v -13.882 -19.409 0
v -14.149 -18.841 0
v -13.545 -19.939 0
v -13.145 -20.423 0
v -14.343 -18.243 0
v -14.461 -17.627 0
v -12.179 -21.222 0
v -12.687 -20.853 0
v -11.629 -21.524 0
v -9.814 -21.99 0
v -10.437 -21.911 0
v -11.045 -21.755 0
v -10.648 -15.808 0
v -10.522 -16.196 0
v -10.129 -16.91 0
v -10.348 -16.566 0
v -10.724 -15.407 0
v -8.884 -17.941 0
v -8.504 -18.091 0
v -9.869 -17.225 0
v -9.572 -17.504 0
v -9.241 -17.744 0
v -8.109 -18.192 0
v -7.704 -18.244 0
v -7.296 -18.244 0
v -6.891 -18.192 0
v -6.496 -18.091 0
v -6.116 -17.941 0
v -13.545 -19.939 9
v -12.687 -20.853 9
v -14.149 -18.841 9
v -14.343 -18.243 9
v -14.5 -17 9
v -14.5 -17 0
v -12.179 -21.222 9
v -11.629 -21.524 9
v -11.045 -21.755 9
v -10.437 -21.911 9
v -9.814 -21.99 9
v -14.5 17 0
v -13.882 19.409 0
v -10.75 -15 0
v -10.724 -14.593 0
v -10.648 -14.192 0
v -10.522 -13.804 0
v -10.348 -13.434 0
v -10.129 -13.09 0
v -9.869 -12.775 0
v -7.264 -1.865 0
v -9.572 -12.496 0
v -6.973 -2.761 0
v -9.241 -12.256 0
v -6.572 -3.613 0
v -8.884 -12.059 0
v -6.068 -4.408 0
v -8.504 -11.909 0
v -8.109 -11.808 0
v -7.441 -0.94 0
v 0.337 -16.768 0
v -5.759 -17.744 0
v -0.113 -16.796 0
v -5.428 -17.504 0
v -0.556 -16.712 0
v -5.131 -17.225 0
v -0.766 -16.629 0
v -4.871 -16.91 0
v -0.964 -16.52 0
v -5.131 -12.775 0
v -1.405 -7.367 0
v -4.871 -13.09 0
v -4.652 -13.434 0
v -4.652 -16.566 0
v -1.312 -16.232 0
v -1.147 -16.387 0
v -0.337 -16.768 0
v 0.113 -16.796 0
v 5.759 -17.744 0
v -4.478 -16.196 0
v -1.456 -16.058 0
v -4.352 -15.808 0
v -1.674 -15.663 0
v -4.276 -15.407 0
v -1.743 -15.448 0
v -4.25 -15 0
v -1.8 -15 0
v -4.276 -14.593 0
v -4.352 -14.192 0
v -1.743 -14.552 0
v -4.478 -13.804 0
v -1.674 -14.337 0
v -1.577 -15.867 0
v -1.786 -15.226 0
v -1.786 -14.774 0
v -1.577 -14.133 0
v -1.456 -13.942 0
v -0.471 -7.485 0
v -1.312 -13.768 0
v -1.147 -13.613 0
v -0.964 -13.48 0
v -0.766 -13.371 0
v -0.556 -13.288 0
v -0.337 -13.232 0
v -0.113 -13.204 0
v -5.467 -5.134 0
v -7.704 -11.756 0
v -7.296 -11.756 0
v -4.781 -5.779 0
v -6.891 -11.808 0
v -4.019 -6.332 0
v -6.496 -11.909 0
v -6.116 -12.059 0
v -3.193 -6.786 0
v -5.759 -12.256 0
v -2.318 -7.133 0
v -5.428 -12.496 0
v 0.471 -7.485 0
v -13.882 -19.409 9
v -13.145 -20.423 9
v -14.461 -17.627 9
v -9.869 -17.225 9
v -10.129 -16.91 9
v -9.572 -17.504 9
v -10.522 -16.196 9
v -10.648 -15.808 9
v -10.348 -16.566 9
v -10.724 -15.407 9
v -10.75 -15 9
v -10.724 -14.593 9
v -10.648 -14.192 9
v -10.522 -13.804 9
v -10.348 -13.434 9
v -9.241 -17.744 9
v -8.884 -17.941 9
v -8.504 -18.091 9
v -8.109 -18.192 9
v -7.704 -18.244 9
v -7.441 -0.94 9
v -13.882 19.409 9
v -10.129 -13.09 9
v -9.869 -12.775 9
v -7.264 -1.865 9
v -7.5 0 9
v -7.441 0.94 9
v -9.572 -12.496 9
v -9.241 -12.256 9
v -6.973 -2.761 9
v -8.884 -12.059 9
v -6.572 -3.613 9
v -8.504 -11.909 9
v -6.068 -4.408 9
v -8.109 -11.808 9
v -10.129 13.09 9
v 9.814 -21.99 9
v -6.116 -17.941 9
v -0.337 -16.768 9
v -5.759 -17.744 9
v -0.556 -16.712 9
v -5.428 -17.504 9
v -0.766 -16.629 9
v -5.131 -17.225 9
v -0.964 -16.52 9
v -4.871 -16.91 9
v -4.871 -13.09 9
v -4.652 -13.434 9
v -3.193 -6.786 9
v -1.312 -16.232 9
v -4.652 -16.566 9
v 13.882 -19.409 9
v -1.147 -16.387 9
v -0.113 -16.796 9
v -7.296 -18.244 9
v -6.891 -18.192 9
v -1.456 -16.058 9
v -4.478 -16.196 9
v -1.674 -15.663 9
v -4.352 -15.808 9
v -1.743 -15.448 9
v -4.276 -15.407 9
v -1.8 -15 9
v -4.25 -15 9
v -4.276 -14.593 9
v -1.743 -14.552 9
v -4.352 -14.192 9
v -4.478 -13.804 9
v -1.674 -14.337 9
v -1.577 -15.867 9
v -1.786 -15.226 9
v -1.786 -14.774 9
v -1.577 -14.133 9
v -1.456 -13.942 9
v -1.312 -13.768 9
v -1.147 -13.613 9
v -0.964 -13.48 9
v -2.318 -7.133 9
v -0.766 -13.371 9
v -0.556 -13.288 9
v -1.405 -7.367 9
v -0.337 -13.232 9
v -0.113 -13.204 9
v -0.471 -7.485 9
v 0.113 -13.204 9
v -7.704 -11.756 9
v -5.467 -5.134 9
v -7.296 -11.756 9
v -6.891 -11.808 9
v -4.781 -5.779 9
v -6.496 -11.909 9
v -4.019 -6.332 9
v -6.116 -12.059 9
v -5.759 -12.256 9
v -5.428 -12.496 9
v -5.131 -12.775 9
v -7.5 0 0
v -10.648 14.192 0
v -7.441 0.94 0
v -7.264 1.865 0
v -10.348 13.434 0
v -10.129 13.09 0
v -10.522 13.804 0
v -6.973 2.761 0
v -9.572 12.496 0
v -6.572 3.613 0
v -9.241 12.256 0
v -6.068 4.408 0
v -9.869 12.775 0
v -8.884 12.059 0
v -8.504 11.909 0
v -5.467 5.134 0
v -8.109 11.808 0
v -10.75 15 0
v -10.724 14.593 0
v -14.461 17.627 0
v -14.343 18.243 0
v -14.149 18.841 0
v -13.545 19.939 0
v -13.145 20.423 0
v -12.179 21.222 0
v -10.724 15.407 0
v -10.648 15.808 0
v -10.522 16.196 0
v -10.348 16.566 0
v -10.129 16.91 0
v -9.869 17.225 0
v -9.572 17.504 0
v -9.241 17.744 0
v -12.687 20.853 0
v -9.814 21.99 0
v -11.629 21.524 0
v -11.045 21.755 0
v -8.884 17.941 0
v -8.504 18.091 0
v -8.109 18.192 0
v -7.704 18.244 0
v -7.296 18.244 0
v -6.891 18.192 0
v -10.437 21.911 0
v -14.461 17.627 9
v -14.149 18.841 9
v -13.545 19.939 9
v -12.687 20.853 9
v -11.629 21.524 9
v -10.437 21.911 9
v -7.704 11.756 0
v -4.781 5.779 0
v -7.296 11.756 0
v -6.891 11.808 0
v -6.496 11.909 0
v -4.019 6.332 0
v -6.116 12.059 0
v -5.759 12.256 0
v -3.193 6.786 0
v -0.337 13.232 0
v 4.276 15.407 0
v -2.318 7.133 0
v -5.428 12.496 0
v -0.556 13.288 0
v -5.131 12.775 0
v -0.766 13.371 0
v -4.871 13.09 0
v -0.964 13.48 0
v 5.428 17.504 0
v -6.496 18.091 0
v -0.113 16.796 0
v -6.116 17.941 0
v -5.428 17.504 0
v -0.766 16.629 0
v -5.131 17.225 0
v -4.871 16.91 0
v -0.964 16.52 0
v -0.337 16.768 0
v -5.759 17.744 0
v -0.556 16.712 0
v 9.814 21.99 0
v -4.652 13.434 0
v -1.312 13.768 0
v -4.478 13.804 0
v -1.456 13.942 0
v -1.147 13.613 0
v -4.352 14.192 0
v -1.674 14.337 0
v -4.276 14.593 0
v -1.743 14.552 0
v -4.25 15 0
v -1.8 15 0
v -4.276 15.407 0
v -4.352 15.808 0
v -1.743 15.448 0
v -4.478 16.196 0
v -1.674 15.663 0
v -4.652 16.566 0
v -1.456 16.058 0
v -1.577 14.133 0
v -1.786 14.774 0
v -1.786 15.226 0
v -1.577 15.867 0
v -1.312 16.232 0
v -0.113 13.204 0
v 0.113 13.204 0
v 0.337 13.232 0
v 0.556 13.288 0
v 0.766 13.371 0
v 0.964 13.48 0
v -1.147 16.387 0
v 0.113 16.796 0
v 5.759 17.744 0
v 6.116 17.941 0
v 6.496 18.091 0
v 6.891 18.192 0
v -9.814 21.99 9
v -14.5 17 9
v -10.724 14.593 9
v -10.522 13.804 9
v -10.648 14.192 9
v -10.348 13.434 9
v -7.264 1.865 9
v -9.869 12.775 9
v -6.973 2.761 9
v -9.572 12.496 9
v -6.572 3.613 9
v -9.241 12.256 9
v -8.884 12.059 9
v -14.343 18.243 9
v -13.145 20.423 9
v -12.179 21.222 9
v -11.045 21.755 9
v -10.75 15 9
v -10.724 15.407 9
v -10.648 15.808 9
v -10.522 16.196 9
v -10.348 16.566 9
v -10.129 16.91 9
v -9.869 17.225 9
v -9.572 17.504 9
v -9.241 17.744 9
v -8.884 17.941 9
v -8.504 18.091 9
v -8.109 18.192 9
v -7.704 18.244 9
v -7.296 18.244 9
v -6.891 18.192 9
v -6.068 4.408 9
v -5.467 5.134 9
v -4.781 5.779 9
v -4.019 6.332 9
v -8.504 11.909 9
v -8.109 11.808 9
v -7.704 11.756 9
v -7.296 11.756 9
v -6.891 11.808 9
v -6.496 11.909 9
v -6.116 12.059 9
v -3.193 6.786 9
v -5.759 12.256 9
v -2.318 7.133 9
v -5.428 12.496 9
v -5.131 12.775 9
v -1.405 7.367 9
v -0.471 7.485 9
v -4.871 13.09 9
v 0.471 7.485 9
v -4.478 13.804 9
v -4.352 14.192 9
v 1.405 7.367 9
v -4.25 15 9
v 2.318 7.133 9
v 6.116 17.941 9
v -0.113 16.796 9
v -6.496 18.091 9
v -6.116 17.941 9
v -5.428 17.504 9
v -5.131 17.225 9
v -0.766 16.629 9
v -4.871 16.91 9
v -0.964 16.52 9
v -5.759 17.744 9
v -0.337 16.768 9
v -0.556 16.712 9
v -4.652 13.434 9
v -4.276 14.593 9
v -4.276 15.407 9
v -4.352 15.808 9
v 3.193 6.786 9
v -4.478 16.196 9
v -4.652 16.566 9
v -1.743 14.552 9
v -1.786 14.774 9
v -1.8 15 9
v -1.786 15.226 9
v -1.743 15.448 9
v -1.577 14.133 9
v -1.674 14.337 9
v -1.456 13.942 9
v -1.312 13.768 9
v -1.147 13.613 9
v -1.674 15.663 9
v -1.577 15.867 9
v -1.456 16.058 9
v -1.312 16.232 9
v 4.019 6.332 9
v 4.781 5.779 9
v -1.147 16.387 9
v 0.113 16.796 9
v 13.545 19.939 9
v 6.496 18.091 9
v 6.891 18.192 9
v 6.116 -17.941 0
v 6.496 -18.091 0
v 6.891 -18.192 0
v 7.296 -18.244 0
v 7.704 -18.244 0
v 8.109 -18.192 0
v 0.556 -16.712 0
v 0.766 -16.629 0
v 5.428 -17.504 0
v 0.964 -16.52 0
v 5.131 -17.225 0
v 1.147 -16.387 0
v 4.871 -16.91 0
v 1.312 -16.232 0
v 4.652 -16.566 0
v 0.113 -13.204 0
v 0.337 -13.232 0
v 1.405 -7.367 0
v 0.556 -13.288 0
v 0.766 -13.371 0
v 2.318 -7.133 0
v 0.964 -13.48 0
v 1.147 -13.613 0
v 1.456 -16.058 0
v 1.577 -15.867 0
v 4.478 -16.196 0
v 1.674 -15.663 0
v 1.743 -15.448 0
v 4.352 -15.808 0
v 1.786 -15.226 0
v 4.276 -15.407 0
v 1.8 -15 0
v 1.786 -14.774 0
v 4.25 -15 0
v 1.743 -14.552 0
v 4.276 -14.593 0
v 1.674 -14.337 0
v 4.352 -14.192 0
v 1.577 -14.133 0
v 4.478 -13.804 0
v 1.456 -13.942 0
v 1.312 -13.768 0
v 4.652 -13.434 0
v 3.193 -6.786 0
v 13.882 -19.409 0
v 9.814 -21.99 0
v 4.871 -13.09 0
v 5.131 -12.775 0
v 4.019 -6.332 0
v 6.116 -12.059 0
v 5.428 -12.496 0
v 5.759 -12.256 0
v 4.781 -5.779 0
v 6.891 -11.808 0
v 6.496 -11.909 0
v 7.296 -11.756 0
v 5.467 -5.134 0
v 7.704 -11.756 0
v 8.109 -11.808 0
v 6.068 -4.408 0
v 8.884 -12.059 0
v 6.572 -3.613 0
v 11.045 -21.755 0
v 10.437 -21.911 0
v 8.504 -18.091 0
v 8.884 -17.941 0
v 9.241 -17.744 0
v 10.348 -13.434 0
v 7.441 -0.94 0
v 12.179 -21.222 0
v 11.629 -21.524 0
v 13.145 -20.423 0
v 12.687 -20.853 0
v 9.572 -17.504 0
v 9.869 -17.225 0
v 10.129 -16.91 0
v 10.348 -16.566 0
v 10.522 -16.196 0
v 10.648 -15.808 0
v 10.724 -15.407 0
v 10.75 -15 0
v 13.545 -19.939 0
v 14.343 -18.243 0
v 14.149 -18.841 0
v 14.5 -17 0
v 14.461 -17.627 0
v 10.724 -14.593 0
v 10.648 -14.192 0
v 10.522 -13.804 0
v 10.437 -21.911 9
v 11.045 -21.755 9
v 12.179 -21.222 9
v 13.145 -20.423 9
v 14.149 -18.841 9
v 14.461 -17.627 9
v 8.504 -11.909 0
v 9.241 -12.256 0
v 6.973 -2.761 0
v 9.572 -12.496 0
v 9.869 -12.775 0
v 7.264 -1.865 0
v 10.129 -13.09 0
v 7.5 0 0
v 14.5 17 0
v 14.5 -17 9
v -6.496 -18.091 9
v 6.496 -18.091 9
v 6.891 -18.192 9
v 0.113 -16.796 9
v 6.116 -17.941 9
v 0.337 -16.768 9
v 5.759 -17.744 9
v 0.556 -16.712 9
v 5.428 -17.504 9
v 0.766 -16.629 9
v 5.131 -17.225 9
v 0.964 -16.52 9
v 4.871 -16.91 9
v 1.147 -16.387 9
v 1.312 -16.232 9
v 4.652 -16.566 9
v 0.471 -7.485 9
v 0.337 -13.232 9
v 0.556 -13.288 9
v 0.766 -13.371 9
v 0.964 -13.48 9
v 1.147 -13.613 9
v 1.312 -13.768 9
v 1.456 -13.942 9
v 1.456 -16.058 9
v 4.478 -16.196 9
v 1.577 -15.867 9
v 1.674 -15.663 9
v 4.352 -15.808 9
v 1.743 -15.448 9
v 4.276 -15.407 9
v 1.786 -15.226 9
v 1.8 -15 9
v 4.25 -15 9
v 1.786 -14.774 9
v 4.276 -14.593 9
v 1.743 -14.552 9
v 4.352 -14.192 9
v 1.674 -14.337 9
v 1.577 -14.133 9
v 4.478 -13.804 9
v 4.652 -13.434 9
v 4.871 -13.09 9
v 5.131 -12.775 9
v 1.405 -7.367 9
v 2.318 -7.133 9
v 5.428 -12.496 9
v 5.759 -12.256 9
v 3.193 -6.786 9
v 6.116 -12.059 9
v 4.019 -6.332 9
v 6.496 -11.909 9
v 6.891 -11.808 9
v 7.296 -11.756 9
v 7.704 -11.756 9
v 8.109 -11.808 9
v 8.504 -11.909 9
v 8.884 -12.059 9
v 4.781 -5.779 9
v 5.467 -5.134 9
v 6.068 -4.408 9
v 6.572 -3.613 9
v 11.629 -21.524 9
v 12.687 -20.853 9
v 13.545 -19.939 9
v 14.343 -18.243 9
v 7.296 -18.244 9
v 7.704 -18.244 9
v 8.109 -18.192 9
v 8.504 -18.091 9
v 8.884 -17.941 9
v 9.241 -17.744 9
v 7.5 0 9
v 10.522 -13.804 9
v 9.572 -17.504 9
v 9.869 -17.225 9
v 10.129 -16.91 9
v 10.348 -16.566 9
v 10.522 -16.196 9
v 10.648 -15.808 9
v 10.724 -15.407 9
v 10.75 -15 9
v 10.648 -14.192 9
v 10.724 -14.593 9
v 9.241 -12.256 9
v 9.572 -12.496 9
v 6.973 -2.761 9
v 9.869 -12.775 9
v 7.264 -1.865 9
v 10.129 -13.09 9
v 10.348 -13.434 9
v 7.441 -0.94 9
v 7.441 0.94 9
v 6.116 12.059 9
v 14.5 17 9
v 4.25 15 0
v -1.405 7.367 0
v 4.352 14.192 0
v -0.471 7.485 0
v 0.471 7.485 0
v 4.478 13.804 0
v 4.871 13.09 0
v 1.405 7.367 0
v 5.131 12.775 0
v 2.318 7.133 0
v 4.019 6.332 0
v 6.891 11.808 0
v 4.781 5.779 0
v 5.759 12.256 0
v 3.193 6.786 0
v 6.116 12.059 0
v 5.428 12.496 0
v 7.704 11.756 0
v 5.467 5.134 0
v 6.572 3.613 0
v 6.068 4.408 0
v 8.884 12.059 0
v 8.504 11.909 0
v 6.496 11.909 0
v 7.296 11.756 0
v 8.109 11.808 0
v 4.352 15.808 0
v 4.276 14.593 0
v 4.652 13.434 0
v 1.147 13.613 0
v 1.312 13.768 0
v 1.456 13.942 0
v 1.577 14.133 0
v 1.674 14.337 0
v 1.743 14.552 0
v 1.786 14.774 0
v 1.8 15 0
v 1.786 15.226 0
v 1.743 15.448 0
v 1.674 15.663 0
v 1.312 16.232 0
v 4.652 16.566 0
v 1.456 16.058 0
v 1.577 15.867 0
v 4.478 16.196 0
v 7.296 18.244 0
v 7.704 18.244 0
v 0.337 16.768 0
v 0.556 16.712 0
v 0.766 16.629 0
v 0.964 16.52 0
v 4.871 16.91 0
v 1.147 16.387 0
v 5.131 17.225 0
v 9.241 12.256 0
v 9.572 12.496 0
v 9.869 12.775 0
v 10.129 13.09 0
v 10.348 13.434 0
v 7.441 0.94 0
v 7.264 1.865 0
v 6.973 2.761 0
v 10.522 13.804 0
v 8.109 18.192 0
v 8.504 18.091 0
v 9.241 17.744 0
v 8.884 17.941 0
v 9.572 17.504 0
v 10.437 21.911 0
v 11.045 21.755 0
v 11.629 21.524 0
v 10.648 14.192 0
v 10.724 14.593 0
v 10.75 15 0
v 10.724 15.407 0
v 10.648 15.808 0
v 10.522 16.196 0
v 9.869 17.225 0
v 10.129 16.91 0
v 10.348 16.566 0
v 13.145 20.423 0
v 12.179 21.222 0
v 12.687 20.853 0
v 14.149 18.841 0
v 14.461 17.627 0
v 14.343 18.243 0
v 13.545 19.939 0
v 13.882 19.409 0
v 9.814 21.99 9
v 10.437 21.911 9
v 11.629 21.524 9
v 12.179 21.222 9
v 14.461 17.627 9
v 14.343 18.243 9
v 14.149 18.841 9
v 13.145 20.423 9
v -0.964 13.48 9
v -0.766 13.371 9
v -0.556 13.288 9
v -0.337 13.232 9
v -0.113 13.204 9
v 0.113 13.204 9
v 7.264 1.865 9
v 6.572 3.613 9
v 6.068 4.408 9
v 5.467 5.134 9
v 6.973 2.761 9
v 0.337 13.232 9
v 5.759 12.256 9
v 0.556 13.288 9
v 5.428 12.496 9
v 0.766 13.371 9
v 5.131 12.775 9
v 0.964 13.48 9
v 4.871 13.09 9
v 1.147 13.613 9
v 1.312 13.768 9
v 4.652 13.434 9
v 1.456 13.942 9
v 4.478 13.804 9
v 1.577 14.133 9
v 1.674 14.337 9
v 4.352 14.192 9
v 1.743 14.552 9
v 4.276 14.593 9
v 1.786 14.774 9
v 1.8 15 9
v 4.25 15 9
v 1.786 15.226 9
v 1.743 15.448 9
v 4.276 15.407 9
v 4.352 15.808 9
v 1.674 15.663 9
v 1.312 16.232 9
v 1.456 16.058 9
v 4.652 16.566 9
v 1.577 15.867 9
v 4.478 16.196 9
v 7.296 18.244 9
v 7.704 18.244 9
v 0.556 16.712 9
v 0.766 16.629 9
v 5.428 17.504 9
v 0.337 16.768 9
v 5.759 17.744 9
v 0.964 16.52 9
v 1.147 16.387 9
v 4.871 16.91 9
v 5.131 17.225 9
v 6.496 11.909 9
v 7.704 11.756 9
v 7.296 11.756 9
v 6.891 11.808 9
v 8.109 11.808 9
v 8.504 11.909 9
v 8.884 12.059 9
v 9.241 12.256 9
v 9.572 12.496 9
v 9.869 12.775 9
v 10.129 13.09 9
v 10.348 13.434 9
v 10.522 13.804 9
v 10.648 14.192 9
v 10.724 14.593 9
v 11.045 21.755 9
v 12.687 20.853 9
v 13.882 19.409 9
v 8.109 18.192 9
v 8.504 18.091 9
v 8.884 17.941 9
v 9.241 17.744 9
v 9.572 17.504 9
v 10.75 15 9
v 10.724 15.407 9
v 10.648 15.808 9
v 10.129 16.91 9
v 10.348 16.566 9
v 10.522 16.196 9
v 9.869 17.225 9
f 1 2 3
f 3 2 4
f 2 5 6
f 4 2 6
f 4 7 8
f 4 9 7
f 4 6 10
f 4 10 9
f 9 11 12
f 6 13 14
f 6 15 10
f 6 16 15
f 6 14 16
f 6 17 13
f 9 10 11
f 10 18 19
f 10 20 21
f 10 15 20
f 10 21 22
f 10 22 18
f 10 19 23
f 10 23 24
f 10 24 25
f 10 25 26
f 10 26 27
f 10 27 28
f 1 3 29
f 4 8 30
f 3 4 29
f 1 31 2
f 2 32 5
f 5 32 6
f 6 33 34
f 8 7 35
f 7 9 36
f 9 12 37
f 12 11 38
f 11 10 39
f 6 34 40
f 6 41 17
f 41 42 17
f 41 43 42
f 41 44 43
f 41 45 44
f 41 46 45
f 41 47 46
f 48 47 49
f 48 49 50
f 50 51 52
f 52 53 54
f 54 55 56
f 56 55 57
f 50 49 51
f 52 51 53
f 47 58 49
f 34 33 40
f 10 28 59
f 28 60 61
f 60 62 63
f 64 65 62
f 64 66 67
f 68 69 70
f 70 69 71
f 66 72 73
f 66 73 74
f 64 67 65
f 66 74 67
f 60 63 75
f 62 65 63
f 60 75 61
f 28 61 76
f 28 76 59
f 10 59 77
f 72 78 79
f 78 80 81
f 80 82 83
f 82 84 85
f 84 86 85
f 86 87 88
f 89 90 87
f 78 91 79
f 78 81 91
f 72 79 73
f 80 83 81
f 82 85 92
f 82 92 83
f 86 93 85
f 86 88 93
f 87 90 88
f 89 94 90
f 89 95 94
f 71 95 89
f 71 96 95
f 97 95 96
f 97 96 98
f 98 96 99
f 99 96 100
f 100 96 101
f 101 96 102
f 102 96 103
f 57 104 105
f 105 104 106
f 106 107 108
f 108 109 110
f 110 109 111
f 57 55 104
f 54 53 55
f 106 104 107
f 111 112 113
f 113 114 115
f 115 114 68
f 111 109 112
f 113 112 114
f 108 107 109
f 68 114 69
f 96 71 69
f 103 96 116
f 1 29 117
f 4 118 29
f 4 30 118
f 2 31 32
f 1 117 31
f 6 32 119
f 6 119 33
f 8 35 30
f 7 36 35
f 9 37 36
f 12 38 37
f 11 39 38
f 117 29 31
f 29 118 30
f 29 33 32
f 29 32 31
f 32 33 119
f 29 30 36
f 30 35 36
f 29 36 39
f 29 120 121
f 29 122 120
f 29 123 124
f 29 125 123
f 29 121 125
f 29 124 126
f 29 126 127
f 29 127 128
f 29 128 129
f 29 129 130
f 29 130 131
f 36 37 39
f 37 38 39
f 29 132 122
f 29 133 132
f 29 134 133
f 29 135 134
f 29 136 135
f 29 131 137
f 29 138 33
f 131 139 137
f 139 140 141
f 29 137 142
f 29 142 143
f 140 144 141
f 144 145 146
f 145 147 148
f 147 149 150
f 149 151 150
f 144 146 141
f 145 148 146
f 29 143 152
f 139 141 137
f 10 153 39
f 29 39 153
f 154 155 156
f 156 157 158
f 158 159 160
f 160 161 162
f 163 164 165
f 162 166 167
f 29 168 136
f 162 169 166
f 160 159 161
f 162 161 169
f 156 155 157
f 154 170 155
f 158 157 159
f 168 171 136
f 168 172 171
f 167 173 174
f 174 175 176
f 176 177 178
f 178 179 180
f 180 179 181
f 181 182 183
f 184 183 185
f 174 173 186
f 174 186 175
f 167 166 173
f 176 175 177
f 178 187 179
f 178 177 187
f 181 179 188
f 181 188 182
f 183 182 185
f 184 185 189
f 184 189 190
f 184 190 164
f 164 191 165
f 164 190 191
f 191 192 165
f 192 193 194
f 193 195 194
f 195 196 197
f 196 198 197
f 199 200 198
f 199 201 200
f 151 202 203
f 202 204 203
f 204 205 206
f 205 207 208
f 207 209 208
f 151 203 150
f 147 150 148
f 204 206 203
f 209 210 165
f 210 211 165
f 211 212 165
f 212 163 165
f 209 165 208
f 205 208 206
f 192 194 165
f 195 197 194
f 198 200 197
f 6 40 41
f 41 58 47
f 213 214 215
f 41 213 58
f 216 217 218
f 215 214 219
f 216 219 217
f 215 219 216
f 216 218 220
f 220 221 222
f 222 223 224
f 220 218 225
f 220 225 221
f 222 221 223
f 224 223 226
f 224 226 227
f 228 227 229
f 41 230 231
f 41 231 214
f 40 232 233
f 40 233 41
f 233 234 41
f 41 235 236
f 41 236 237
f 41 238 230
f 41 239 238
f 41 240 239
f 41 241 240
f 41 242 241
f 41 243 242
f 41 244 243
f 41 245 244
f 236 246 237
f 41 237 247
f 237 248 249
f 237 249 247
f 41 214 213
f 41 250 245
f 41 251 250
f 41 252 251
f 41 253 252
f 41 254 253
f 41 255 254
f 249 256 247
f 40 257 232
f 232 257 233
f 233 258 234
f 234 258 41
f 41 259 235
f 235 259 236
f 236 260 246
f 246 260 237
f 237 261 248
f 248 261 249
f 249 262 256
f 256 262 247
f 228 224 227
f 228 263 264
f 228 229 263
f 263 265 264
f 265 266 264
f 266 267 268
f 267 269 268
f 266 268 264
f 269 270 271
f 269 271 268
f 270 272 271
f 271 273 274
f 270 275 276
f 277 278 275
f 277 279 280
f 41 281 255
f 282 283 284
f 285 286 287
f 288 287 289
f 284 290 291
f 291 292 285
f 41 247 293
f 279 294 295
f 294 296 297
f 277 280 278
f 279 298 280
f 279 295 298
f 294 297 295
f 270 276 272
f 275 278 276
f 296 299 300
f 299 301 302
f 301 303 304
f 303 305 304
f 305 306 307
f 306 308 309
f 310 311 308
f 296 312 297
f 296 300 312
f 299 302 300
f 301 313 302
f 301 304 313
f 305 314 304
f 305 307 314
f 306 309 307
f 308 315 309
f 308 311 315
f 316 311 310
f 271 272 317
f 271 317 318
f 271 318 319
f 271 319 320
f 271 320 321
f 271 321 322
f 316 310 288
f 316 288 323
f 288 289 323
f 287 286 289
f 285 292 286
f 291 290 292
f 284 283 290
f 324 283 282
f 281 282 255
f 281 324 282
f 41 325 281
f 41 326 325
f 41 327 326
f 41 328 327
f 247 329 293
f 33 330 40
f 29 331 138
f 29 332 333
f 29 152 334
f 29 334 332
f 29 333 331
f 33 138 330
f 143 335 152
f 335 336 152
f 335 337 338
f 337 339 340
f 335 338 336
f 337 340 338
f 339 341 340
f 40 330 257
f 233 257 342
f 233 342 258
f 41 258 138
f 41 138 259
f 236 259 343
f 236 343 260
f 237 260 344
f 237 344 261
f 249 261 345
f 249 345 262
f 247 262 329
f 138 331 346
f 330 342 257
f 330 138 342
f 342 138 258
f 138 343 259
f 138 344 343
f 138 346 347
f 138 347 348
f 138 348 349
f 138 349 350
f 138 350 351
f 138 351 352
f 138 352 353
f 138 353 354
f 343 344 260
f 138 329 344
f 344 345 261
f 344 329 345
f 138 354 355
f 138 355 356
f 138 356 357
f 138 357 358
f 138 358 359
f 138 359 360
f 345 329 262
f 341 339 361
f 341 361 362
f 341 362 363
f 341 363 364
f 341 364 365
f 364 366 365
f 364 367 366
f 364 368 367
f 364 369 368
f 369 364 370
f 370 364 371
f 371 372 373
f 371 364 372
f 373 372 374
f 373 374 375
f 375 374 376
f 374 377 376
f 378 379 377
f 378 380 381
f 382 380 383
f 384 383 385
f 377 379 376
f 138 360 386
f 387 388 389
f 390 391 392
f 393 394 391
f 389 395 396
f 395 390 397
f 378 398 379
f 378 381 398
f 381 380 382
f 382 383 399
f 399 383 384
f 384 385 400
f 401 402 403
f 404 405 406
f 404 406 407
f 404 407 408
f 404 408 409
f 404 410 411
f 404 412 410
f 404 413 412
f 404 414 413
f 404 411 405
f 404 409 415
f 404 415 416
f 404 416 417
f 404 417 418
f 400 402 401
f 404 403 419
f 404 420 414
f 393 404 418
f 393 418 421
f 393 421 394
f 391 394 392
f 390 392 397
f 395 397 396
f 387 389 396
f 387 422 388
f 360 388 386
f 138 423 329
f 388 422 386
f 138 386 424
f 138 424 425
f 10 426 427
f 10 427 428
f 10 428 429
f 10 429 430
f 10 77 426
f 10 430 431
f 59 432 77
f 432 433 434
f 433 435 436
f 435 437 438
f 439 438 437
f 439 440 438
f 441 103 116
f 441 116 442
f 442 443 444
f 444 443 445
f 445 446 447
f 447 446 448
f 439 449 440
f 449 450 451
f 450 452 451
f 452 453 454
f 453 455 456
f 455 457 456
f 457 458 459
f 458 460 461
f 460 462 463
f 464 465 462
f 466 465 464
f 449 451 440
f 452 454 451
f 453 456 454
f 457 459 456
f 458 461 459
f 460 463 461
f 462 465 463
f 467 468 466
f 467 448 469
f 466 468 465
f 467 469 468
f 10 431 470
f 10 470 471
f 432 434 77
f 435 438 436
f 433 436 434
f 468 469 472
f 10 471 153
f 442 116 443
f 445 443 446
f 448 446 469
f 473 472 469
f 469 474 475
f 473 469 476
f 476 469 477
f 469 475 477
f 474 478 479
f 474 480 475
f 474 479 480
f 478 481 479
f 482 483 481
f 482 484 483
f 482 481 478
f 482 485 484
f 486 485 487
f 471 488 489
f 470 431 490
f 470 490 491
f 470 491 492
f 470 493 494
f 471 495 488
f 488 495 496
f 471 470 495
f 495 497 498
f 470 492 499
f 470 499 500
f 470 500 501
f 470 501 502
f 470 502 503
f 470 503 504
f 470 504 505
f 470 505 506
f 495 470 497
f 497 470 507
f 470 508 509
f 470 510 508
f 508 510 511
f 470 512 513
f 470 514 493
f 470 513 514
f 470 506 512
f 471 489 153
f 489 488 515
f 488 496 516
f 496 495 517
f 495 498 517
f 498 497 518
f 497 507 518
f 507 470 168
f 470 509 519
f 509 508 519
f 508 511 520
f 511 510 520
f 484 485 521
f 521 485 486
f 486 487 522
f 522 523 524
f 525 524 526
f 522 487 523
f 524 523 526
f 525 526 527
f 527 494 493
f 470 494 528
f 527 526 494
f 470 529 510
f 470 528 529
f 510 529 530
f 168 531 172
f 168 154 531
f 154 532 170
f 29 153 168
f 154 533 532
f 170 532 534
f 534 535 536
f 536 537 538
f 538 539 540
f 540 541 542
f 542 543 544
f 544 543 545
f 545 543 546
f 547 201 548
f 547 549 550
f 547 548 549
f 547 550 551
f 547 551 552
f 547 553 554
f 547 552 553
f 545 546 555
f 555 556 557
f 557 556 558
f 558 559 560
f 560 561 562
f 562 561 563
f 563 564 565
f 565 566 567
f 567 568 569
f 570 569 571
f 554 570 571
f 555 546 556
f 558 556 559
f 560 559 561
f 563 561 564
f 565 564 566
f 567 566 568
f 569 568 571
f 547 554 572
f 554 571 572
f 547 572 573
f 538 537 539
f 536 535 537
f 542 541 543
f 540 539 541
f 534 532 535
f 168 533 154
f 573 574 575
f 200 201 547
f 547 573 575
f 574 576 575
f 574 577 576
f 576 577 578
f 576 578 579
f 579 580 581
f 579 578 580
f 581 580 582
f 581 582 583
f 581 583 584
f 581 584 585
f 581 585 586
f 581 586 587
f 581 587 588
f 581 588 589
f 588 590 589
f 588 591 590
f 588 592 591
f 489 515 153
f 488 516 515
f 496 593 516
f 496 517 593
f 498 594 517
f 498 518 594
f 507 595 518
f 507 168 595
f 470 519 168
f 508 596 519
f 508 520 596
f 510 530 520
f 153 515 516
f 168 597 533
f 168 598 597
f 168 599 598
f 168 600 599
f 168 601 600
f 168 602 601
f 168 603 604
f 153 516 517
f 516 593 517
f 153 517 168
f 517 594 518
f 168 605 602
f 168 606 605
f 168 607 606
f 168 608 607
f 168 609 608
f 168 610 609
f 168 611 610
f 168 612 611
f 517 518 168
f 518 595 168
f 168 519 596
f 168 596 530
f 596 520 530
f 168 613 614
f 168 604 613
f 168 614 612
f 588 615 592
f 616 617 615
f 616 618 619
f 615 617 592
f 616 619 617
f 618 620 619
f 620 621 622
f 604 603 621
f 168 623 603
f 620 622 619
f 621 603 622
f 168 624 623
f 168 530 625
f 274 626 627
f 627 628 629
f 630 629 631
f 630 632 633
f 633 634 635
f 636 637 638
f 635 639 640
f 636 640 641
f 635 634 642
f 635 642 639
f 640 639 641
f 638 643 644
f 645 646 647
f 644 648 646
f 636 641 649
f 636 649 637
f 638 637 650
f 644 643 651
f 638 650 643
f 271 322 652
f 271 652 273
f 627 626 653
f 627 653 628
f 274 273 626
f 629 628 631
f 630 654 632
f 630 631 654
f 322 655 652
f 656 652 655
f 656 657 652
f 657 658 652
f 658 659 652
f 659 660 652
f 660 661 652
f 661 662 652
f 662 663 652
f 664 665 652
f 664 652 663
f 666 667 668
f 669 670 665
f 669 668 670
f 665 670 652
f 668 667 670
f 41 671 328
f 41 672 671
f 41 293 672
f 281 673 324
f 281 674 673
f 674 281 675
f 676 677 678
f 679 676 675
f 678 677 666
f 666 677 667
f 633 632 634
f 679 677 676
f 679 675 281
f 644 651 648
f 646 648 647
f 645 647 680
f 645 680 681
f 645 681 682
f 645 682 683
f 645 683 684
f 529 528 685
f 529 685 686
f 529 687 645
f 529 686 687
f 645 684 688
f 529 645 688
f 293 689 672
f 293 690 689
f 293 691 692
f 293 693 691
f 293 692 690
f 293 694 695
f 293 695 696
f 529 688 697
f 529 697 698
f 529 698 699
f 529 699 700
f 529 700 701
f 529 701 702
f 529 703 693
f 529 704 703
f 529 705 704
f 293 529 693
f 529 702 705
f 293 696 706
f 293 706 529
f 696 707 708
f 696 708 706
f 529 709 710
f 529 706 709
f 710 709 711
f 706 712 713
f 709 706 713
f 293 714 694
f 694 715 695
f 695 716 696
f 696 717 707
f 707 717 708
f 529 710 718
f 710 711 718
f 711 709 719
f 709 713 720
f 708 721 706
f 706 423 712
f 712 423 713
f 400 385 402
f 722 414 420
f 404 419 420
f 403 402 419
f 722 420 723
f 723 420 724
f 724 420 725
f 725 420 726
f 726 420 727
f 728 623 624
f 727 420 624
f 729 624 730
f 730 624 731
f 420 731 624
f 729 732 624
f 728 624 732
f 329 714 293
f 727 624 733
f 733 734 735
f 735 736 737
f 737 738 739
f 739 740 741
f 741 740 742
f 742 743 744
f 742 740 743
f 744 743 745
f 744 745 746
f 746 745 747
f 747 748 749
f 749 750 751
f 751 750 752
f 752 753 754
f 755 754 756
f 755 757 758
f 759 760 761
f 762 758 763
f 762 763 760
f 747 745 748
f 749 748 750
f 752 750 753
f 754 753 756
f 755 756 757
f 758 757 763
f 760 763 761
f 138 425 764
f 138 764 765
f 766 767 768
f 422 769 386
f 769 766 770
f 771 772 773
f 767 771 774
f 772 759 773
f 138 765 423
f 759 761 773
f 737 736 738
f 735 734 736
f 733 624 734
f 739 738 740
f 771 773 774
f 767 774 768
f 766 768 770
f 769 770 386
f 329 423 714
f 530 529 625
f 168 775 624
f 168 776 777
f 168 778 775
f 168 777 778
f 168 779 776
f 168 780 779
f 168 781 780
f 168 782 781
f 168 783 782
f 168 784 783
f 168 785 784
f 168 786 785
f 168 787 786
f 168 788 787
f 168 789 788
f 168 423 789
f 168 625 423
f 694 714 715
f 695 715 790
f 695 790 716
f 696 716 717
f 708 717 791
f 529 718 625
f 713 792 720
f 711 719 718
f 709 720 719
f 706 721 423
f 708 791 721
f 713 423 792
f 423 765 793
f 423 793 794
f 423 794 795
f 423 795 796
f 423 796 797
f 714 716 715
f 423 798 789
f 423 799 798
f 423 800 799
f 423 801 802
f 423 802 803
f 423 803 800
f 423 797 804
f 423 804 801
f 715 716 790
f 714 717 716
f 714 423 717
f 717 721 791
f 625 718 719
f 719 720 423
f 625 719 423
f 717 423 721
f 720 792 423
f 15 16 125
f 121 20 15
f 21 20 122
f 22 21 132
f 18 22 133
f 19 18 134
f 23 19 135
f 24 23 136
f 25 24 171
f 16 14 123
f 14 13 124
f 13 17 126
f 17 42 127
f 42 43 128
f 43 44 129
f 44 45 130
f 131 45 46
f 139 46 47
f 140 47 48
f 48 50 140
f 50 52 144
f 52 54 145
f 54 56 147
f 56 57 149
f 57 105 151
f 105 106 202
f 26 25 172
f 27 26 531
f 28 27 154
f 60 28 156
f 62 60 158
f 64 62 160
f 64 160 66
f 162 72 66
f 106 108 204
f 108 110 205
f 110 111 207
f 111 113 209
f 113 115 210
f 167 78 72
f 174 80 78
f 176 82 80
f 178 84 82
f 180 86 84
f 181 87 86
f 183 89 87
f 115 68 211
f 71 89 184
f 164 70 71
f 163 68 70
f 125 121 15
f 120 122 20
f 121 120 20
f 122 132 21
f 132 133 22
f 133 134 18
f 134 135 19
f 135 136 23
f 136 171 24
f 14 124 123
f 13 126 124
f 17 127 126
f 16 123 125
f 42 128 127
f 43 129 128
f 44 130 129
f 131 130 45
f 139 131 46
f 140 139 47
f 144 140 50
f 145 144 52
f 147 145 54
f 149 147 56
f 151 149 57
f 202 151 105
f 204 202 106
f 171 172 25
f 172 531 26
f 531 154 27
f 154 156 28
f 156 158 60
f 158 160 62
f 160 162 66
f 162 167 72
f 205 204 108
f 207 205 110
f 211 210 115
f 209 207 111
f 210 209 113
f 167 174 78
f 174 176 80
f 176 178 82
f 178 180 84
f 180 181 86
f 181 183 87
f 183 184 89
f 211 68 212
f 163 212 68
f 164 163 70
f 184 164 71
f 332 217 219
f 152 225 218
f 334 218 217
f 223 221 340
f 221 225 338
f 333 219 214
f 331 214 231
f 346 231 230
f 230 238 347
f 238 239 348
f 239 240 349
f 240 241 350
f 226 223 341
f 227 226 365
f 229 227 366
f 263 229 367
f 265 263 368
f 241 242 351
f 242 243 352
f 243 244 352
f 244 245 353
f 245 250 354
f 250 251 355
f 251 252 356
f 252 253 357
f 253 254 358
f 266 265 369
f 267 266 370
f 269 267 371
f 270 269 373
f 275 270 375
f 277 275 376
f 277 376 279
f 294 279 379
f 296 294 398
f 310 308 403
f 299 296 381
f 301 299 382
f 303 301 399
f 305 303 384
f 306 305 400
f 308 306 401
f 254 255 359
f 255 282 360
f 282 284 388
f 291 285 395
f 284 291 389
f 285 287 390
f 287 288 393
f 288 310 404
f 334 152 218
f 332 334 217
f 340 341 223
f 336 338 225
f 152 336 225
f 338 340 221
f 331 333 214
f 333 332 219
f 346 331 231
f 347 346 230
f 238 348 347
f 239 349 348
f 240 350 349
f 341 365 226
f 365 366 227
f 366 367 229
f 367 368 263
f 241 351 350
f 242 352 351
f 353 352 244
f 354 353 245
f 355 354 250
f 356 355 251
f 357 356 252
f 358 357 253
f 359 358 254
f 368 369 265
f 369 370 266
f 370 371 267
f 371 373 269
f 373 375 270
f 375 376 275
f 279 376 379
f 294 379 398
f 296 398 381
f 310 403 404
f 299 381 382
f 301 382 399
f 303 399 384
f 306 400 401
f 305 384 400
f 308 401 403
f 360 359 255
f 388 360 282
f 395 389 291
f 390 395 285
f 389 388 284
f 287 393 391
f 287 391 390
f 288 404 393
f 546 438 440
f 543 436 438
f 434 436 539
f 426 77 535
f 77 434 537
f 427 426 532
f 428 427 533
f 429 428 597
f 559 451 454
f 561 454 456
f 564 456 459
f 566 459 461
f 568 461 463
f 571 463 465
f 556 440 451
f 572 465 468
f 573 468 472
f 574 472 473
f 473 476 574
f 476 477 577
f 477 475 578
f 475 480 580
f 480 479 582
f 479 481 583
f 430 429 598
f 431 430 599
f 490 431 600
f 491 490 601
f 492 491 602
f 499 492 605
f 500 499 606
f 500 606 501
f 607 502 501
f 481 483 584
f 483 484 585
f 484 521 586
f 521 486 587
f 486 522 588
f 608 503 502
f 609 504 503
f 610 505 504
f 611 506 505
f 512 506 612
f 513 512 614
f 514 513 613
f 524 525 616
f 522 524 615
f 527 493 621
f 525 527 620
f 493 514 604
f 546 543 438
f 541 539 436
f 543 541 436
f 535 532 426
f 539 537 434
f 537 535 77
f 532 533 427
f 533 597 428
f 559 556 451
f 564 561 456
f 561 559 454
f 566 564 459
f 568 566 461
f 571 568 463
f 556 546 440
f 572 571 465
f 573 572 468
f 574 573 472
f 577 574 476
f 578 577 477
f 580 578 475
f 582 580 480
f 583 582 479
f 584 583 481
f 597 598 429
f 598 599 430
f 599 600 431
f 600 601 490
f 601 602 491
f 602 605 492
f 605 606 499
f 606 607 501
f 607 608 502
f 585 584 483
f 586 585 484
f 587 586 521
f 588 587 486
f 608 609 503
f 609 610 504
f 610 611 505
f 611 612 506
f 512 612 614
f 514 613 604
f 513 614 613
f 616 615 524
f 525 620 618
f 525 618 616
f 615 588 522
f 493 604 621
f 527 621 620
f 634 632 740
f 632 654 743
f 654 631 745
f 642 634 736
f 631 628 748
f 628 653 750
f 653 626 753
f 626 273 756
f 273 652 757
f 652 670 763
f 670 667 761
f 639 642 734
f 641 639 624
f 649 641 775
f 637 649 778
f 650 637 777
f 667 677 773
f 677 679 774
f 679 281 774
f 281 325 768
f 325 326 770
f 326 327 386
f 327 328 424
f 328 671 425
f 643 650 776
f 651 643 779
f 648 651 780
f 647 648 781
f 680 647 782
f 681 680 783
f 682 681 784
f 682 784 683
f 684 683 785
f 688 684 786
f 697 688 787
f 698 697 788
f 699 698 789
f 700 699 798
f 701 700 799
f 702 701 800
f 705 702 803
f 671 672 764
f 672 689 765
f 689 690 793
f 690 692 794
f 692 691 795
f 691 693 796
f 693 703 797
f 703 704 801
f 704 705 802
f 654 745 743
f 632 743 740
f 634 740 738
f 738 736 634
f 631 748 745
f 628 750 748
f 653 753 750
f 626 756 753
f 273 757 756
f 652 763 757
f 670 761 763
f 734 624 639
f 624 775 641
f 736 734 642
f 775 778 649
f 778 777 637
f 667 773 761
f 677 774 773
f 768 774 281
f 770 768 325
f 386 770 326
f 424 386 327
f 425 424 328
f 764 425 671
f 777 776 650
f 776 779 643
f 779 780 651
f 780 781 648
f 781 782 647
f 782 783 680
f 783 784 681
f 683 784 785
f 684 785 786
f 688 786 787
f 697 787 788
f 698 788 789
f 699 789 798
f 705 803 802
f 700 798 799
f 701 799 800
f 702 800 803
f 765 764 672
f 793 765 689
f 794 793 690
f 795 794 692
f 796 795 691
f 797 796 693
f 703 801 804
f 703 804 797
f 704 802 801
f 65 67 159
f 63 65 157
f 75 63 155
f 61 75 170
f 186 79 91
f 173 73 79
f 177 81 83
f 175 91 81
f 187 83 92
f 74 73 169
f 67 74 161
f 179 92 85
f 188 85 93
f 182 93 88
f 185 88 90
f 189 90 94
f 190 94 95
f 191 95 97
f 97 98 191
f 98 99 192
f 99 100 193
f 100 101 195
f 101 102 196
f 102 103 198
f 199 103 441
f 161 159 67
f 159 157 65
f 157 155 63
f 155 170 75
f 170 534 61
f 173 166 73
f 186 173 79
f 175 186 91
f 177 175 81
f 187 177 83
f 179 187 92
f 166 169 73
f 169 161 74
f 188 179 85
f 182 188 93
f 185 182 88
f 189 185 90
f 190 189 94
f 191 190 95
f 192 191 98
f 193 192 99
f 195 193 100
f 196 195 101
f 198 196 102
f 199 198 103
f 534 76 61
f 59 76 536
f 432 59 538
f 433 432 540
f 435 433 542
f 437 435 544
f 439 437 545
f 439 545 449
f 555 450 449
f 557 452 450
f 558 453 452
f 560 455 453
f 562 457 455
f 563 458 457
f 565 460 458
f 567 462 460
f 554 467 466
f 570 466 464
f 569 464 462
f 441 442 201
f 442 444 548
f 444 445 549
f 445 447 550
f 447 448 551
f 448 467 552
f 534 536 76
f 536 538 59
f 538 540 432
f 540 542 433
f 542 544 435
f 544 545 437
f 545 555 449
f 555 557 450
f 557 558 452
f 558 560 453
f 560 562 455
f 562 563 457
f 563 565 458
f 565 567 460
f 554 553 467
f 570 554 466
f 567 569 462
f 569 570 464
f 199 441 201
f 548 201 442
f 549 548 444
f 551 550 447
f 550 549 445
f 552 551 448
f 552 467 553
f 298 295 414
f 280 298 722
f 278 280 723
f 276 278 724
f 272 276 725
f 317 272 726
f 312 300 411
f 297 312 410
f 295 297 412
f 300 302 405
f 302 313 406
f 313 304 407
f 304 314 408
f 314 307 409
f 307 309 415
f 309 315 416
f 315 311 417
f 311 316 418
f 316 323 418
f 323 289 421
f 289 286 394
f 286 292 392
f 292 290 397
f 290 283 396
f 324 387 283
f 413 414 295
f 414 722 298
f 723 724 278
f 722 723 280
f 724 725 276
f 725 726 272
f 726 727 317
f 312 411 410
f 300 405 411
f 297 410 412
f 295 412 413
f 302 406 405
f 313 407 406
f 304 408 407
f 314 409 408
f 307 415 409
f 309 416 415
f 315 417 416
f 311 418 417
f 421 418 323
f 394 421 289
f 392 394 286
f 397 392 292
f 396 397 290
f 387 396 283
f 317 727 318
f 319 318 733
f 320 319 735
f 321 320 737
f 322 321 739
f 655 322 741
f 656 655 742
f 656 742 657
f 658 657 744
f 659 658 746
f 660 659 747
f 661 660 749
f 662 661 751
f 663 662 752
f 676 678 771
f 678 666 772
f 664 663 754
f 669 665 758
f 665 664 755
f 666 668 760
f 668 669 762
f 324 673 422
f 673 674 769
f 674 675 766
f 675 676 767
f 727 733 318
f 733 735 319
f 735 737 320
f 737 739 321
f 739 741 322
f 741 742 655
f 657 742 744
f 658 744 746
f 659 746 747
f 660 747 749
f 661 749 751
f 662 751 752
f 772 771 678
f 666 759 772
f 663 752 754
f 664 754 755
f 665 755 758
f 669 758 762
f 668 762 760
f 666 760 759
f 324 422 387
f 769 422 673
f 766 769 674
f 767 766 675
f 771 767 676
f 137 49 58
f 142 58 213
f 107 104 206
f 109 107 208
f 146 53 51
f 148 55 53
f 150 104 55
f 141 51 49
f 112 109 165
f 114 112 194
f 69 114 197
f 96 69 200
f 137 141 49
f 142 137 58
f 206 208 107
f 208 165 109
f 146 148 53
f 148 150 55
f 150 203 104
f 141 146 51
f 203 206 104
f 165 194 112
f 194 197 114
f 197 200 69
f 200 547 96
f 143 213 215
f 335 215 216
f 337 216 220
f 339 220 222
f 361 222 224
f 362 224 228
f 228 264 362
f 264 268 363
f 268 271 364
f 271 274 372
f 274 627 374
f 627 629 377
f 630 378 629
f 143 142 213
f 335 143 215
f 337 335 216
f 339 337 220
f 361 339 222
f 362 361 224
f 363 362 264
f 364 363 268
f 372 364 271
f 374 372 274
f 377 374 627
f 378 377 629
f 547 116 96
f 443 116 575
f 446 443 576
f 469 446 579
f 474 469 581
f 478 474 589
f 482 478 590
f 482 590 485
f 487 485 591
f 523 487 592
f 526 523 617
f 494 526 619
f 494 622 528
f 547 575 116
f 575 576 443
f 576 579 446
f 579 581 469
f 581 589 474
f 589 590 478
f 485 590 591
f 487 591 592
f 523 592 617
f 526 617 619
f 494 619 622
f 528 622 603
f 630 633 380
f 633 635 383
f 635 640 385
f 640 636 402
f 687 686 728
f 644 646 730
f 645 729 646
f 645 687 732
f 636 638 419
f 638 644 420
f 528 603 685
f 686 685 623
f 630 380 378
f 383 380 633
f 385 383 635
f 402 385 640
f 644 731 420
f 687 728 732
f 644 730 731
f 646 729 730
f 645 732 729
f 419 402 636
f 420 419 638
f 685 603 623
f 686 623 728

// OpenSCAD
$fn = 50;

difference() {
	union() {
		hull() {
			translate(v = [-9.5, 17.0, 0]) {
				cylinder(h = 9, r = 5);
			}
			translate(v = [9.5, 17.0, 0]) {
				cylinder(h = 9, r = 5);
			}
			translate(v = [-9.5, -17.0, 0]) {
				cylinder(h = 9, r = 5);
			}
			translate(v = [9.5, -17.0, 0]) {
				cylinder(h = 9, r = 5);
			}
		}
	}
	union() {
		translate(v = [-7.5, -15.0, 0]) {
			cylinder(h = 9, r = 3.25);
		}
		translate(v = [-7.5, 15.0, 0]) {
			cylinder(h = 9, r = 3.25);
		}
		translate(v = [7.5, -15.0, 0]) {
			cylinder(h = 9, r = 3.25);
		}
		translate(v = [7.5, 15.0, 0]) {
			cylinder(h = 9, r = 3.25);
		}
		translate(v = [0.0, -15.0, 0]) {
			cylinder(h = 9, r = 1.8);
		}
		translate(v = [0.0, 15.0, 0]) {
			cylinder(h = 9, r = 1.8);
		}
		cylinder(h = 9, r = 7.5);
	}
}
